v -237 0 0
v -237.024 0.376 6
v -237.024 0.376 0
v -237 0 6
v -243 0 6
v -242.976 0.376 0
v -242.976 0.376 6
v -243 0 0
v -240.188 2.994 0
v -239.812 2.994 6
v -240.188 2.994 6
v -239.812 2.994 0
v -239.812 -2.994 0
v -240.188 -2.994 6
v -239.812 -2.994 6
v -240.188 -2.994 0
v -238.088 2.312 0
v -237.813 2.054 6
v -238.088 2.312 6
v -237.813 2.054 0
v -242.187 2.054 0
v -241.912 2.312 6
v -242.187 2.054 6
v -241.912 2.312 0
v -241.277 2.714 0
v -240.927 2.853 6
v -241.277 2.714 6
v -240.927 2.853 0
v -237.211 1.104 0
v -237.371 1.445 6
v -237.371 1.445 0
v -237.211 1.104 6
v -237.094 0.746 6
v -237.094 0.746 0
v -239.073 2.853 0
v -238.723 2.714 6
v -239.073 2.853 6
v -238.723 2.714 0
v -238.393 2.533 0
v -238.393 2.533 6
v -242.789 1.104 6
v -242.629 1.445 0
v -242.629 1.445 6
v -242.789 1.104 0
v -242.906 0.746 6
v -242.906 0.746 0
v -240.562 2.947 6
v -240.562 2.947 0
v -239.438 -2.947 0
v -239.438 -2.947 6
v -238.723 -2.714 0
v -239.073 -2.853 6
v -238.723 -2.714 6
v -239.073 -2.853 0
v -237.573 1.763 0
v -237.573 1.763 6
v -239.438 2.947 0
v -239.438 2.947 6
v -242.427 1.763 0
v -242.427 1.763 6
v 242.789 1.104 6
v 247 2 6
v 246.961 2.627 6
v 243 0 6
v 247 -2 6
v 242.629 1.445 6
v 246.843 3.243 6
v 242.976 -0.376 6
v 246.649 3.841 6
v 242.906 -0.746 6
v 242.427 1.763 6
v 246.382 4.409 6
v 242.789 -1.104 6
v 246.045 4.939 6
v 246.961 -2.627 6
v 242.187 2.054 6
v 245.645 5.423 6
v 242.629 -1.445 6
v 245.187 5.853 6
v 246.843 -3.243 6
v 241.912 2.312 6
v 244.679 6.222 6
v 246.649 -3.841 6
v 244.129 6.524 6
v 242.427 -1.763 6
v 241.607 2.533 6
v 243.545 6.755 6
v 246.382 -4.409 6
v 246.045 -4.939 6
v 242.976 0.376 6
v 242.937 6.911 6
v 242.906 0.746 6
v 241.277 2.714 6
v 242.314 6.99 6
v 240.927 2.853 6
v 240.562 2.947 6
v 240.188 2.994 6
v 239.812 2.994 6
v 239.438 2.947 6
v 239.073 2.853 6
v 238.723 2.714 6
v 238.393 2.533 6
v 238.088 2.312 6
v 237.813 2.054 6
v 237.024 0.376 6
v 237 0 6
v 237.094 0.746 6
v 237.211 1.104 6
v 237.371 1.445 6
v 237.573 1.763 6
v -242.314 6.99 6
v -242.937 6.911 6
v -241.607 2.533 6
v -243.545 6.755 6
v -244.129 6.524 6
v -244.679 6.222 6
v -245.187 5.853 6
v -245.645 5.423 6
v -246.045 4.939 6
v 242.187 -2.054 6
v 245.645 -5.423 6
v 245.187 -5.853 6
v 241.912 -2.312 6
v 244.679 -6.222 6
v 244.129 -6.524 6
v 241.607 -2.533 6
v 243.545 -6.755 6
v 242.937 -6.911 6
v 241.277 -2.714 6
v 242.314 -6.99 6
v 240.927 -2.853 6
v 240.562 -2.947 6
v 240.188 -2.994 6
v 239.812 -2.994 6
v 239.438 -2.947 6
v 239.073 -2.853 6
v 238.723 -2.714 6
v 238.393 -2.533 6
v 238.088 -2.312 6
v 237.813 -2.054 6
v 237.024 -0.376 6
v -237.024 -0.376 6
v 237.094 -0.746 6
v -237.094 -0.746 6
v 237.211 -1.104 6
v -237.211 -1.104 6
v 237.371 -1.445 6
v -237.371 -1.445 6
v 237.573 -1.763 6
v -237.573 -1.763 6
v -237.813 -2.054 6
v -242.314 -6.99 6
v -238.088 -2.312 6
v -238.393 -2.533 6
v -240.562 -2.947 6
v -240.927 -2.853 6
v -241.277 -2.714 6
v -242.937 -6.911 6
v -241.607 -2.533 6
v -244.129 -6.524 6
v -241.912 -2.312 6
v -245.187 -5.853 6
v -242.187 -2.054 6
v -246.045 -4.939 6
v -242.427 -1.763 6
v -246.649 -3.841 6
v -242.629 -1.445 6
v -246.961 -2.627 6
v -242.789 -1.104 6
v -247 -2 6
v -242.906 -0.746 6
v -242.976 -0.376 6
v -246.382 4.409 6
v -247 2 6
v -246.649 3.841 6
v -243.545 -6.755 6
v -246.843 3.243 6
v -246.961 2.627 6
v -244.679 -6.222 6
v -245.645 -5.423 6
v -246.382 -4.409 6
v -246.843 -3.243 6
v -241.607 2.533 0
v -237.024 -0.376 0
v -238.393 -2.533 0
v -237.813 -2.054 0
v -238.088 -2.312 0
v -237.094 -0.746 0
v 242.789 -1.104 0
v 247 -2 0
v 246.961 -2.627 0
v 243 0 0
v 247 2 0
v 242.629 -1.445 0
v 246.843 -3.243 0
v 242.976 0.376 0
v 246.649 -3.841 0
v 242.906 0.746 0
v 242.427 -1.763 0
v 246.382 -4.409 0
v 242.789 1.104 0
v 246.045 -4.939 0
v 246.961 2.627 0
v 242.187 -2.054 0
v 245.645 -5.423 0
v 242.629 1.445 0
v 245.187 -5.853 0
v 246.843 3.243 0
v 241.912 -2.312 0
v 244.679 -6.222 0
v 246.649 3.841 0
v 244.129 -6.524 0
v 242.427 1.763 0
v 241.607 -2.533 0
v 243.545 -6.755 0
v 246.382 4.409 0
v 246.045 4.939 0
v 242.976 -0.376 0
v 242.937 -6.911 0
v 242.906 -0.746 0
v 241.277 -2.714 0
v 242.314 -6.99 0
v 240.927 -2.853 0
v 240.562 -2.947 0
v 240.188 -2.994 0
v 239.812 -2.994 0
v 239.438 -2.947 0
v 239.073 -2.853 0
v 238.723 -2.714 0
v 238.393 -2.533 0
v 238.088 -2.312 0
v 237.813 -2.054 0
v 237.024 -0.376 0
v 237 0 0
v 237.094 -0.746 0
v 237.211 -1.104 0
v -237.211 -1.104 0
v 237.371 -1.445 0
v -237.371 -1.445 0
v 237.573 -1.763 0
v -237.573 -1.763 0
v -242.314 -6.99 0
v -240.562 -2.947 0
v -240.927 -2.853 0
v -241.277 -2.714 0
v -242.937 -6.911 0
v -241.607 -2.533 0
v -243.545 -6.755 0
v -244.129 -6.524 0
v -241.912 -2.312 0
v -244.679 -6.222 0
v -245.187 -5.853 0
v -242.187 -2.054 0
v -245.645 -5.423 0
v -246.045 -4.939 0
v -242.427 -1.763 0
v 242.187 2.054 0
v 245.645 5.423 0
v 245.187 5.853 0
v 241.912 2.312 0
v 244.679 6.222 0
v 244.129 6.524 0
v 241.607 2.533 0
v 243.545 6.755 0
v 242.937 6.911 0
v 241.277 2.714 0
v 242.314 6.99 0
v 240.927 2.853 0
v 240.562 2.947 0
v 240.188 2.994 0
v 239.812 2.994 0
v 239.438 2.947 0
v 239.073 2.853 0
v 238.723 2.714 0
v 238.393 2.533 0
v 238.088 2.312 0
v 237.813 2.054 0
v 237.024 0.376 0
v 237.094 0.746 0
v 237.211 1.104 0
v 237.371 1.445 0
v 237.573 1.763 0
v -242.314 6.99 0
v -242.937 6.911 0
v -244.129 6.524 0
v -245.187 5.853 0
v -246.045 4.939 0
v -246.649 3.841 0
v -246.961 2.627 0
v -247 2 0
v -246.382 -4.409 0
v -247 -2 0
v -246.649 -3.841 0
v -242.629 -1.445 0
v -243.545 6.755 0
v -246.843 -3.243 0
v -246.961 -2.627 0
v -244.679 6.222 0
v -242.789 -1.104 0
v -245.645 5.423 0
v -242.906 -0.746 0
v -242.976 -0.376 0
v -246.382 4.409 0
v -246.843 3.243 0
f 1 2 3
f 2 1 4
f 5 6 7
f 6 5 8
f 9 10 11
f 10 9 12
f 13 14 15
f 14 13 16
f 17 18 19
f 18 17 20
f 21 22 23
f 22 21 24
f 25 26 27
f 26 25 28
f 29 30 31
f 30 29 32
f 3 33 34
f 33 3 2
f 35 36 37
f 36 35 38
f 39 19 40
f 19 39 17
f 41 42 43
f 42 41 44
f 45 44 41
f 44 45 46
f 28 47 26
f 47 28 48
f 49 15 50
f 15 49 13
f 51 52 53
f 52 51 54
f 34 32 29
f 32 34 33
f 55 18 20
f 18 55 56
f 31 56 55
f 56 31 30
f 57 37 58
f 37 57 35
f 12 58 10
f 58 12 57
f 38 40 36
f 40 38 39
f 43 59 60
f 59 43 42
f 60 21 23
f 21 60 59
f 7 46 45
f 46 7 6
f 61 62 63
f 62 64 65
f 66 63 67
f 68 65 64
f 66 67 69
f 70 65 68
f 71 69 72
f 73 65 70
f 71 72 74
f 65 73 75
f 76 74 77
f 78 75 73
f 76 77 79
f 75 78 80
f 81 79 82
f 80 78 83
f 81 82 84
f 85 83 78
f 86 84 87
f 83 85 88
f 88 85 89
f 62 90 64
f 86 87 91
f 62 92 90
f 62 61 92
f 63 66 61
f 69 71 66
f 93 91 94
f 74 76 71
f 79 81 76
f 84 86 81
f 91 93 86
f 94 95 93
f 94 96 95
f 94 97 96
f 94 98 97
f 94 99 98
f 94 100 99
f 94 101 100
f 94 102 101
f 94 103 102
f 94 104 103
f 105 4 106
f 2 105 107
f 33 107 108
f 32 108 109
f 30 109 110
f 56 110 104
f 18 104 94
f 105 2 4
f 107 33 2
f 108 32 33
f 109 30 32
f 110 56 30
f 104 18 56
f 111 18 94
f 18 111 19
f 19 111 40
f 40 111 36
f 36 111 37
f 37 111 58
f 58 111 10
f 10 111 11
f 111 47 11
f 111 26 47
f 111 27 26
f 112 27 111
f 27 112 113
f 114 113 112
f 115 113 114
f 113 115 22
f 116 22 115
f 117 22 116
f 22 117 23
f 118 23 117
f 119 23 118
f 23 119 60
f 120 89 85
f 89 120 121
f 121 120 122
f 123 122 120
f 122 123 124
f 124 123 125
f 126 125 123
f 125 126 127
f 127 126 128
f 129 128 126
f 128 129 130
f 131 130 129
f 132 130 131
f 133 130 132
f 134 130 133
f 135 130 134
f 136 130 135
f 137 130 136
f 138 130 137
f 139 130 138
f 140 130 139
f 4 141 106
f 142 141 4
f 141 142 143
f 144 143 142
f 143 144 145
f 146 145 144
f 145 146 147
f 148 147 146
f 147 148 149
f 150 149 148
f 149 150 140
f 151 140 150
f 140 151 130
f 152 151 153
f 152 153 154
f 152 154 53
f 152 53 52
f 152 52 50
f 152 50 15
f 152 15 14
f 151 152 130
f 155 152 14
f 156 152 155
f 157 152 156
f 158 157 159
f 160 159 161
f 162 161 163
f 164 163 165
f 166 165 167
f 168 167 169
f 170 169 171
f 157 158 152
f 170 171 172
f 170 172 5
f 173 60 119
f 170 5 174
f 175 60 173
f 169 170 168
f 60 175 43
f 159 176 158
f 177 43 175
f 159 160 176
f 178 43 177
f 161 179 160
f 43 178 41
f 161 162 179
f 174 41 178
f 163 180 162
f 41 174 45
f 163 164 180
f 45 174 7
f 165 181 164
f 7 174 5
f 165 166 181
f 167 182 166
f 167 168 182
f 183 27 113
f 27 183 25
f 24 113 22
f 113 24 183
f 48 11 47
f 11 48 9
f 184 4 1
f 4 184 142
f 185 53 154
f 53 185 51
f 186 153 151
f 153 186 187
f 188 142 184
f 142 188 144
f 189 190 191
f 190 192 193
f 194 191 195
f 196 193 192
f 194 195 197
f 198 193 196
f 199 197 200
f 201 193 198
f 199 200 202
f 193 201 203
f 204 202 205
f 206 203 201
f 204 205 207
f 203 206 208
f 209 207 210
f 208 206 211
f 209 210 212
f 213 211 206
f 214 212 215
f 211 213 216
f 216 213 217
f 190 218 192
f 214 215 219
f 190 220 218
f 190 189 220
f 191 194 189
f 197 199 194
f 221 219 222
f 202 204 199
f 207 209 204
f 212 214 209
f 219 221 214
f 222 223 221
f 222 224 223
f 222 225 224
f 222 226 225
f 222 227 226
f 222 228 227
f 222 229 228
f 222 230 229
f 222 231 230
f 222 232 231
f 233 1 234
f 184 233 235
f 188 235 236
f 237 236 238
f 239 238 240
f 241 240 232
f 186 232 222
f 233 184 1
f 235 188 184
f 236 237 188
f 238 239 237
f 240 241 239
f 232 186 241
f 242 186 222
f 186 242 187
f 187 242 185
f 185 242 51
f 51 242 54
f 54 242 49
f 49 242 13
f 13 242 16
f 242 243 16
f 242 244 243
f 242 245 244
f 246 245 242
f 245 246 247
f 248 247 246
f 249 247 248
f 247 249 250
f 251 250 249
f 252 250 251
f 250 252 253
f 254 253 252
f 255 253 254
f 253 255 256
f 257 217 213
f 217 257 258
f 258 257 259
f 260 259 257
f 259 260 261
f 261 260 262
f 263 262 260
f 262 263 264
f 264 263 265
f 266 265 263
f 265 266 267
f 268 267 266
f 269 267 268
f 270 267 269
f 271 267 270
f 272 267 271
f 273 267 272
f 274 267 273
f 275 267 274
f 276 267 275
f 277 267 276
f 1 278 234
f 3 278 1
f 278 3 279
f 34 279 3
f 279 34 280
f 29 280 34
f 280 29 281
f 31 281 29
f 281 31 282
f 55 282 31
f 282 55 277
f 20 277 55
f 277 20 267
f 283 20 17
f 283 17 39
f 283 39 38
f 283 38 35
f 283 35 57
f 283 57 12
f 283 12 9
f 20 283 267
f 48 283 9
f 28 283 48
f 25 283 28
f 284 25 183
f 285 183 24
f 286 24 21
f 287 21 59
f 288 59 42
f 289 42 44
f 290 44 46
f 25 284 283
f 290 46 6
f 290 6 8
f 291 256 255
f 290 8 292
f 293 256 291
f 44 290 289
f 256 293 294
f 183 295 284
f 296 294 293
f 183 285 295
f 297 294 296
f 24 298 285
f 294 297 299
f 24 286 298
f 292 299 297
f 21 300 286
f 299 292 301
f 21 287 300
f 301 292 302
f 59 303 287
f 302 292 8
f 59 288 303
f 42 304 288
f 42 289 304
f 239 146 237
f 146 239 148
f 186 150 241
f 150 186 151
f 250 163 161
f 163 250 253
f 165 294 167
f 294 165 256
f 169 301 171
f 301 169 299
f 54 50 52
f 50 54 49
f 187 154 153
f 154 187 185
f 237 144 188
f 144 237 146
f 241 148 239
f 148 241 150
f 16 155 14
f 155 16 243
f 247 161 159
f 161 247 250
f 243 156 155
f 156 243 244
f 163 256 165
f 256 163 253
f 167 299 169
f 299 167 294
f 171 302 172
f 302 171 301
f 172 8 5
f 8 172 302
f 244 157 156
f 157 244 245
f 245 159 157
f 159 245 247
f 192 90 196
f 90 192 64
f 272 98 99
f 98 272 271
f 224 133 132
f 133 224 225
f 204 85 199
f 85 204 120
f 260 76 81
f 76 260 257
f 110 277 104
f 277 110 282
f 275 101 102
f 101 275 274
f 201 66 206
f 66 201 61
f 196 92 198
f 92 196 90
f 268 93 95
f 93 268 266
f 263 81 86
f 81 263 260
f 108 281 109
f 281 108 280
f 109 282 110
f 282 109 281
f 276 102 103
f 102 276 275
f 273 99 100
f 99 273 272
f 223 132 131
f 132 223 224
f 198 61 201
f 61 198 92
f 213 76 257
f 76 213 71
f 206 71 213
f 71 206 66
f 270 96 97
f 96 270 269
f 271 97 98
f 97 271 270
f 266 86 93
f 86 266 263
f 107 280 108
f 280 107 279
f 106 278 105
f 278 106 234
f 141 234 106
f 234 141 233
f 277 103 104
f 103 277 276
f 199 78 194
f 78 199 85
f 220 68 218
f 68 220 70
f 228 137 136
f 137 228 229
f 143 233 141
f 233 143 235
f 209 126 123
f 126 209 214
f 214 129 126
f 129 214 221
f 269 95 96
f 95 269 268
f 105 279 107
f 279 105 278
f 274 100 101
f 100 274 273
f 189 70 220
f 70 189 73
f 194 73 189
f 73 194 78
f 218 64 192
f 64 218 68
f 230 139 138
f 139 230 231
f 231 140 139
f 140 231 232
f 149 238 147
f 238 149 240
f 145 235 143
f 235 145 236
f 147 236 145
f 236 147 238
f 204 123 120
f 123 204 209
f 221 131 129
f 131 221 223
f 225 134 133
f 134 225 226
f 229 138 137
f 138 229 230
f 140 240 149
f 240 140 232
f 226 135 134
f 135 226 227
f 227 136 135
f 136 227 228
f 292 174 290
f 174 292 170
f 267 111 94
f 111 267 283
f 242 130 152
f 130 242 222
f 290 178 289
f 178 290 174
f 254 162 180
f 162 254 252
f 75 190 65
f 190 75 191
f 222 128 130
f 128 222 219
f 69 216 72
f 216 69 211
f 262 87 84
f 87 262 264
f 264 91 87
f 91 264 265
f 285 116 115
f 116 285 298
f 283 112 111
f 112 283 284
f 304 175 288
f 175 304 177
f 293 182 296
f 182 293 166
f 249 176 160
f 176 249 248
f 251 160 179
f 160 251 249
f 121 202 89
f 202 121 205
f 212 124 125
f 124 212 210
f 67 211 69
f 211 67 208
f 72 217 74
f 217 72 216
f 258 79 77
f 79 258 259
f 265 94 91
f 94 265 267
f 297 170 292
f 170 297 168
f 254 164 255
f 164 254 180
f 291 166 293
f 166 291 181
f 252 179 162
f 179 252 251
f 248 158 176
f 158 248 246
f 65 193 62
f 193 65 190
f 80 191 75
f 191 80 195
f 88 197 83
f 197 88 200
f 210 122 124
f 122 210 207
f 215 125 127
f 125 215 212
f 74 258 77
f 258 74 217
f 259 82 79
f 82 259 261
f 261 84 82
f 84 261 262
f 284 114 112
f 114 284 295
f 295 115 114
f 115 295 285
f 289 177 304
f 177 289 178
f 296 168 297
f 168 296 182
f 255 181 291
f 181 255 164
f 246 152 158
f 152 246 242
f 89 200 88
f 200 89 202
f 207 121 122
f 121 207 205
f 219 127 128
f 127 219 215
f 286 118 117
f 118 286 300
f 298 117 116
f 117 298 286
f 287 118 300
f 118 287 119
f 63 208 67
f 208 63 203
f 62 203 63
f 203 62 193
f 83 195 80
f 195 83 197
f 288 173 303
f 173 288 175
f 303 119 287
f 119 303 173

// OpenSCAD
$fn = 50;


difference() {
	union() {
		hull() {
			translate(v = [-242.0000000000, 2.0000000000, 0]) {
				cylinder(h = 6, r = 5);
			}
			translate(v = [242.0000000000, 2.0000000000, 0]) {
				cylinder(h = 6, r = 5);
			}
			translate(v = [-242.0000000000, -2.0000000000, 0]) {
				cylinder(h = 6, r = 5);
			}
			translate(v = [242.0000000000, -2.0000000000, 0]) {
				cylinder(h = 6, r = 5);
			}
		}
	}
	union() {
		translate(v = [-240.0000000000, 0.0000000000, 0]) {
			cylinder(h = 6, r = 3.0000000000);
		}
		translate(v = [240.0000000000, 0.0000000000, 0]) {
			cylinder(h = 6, r = 3.0000000000);
		}
		translate(v = [-240.0000000000, 0.0000000000, 0]) {
			cylinder(h = 6, r = 1.5000000000);
		}
		translate(v = [240.0000000000, 0.0000000000, 0]) {
			cylinder(h = 6, r = 1.5000000000);
		}
		translate(v = [-240.0000000000, 0.0000000000, 0]) {
			cylinder(h = 6, r = 1.5000000000);
		}
		translate(v = [240.0000000000, 0.0000000000, 0]) {
			cylinder(h = 6, r = 1.5000000000);
		}
		translate(v = [-240.0000000000, 0.0000000000, 0]) {
			cylinder(h = 6, r = 1.5000000000);
		}
		translate(v = [240.0000000000, 0.0000000000, 0]) {
			cylinder(h = 6, r = 1.5000000000);
		}
	}
}
